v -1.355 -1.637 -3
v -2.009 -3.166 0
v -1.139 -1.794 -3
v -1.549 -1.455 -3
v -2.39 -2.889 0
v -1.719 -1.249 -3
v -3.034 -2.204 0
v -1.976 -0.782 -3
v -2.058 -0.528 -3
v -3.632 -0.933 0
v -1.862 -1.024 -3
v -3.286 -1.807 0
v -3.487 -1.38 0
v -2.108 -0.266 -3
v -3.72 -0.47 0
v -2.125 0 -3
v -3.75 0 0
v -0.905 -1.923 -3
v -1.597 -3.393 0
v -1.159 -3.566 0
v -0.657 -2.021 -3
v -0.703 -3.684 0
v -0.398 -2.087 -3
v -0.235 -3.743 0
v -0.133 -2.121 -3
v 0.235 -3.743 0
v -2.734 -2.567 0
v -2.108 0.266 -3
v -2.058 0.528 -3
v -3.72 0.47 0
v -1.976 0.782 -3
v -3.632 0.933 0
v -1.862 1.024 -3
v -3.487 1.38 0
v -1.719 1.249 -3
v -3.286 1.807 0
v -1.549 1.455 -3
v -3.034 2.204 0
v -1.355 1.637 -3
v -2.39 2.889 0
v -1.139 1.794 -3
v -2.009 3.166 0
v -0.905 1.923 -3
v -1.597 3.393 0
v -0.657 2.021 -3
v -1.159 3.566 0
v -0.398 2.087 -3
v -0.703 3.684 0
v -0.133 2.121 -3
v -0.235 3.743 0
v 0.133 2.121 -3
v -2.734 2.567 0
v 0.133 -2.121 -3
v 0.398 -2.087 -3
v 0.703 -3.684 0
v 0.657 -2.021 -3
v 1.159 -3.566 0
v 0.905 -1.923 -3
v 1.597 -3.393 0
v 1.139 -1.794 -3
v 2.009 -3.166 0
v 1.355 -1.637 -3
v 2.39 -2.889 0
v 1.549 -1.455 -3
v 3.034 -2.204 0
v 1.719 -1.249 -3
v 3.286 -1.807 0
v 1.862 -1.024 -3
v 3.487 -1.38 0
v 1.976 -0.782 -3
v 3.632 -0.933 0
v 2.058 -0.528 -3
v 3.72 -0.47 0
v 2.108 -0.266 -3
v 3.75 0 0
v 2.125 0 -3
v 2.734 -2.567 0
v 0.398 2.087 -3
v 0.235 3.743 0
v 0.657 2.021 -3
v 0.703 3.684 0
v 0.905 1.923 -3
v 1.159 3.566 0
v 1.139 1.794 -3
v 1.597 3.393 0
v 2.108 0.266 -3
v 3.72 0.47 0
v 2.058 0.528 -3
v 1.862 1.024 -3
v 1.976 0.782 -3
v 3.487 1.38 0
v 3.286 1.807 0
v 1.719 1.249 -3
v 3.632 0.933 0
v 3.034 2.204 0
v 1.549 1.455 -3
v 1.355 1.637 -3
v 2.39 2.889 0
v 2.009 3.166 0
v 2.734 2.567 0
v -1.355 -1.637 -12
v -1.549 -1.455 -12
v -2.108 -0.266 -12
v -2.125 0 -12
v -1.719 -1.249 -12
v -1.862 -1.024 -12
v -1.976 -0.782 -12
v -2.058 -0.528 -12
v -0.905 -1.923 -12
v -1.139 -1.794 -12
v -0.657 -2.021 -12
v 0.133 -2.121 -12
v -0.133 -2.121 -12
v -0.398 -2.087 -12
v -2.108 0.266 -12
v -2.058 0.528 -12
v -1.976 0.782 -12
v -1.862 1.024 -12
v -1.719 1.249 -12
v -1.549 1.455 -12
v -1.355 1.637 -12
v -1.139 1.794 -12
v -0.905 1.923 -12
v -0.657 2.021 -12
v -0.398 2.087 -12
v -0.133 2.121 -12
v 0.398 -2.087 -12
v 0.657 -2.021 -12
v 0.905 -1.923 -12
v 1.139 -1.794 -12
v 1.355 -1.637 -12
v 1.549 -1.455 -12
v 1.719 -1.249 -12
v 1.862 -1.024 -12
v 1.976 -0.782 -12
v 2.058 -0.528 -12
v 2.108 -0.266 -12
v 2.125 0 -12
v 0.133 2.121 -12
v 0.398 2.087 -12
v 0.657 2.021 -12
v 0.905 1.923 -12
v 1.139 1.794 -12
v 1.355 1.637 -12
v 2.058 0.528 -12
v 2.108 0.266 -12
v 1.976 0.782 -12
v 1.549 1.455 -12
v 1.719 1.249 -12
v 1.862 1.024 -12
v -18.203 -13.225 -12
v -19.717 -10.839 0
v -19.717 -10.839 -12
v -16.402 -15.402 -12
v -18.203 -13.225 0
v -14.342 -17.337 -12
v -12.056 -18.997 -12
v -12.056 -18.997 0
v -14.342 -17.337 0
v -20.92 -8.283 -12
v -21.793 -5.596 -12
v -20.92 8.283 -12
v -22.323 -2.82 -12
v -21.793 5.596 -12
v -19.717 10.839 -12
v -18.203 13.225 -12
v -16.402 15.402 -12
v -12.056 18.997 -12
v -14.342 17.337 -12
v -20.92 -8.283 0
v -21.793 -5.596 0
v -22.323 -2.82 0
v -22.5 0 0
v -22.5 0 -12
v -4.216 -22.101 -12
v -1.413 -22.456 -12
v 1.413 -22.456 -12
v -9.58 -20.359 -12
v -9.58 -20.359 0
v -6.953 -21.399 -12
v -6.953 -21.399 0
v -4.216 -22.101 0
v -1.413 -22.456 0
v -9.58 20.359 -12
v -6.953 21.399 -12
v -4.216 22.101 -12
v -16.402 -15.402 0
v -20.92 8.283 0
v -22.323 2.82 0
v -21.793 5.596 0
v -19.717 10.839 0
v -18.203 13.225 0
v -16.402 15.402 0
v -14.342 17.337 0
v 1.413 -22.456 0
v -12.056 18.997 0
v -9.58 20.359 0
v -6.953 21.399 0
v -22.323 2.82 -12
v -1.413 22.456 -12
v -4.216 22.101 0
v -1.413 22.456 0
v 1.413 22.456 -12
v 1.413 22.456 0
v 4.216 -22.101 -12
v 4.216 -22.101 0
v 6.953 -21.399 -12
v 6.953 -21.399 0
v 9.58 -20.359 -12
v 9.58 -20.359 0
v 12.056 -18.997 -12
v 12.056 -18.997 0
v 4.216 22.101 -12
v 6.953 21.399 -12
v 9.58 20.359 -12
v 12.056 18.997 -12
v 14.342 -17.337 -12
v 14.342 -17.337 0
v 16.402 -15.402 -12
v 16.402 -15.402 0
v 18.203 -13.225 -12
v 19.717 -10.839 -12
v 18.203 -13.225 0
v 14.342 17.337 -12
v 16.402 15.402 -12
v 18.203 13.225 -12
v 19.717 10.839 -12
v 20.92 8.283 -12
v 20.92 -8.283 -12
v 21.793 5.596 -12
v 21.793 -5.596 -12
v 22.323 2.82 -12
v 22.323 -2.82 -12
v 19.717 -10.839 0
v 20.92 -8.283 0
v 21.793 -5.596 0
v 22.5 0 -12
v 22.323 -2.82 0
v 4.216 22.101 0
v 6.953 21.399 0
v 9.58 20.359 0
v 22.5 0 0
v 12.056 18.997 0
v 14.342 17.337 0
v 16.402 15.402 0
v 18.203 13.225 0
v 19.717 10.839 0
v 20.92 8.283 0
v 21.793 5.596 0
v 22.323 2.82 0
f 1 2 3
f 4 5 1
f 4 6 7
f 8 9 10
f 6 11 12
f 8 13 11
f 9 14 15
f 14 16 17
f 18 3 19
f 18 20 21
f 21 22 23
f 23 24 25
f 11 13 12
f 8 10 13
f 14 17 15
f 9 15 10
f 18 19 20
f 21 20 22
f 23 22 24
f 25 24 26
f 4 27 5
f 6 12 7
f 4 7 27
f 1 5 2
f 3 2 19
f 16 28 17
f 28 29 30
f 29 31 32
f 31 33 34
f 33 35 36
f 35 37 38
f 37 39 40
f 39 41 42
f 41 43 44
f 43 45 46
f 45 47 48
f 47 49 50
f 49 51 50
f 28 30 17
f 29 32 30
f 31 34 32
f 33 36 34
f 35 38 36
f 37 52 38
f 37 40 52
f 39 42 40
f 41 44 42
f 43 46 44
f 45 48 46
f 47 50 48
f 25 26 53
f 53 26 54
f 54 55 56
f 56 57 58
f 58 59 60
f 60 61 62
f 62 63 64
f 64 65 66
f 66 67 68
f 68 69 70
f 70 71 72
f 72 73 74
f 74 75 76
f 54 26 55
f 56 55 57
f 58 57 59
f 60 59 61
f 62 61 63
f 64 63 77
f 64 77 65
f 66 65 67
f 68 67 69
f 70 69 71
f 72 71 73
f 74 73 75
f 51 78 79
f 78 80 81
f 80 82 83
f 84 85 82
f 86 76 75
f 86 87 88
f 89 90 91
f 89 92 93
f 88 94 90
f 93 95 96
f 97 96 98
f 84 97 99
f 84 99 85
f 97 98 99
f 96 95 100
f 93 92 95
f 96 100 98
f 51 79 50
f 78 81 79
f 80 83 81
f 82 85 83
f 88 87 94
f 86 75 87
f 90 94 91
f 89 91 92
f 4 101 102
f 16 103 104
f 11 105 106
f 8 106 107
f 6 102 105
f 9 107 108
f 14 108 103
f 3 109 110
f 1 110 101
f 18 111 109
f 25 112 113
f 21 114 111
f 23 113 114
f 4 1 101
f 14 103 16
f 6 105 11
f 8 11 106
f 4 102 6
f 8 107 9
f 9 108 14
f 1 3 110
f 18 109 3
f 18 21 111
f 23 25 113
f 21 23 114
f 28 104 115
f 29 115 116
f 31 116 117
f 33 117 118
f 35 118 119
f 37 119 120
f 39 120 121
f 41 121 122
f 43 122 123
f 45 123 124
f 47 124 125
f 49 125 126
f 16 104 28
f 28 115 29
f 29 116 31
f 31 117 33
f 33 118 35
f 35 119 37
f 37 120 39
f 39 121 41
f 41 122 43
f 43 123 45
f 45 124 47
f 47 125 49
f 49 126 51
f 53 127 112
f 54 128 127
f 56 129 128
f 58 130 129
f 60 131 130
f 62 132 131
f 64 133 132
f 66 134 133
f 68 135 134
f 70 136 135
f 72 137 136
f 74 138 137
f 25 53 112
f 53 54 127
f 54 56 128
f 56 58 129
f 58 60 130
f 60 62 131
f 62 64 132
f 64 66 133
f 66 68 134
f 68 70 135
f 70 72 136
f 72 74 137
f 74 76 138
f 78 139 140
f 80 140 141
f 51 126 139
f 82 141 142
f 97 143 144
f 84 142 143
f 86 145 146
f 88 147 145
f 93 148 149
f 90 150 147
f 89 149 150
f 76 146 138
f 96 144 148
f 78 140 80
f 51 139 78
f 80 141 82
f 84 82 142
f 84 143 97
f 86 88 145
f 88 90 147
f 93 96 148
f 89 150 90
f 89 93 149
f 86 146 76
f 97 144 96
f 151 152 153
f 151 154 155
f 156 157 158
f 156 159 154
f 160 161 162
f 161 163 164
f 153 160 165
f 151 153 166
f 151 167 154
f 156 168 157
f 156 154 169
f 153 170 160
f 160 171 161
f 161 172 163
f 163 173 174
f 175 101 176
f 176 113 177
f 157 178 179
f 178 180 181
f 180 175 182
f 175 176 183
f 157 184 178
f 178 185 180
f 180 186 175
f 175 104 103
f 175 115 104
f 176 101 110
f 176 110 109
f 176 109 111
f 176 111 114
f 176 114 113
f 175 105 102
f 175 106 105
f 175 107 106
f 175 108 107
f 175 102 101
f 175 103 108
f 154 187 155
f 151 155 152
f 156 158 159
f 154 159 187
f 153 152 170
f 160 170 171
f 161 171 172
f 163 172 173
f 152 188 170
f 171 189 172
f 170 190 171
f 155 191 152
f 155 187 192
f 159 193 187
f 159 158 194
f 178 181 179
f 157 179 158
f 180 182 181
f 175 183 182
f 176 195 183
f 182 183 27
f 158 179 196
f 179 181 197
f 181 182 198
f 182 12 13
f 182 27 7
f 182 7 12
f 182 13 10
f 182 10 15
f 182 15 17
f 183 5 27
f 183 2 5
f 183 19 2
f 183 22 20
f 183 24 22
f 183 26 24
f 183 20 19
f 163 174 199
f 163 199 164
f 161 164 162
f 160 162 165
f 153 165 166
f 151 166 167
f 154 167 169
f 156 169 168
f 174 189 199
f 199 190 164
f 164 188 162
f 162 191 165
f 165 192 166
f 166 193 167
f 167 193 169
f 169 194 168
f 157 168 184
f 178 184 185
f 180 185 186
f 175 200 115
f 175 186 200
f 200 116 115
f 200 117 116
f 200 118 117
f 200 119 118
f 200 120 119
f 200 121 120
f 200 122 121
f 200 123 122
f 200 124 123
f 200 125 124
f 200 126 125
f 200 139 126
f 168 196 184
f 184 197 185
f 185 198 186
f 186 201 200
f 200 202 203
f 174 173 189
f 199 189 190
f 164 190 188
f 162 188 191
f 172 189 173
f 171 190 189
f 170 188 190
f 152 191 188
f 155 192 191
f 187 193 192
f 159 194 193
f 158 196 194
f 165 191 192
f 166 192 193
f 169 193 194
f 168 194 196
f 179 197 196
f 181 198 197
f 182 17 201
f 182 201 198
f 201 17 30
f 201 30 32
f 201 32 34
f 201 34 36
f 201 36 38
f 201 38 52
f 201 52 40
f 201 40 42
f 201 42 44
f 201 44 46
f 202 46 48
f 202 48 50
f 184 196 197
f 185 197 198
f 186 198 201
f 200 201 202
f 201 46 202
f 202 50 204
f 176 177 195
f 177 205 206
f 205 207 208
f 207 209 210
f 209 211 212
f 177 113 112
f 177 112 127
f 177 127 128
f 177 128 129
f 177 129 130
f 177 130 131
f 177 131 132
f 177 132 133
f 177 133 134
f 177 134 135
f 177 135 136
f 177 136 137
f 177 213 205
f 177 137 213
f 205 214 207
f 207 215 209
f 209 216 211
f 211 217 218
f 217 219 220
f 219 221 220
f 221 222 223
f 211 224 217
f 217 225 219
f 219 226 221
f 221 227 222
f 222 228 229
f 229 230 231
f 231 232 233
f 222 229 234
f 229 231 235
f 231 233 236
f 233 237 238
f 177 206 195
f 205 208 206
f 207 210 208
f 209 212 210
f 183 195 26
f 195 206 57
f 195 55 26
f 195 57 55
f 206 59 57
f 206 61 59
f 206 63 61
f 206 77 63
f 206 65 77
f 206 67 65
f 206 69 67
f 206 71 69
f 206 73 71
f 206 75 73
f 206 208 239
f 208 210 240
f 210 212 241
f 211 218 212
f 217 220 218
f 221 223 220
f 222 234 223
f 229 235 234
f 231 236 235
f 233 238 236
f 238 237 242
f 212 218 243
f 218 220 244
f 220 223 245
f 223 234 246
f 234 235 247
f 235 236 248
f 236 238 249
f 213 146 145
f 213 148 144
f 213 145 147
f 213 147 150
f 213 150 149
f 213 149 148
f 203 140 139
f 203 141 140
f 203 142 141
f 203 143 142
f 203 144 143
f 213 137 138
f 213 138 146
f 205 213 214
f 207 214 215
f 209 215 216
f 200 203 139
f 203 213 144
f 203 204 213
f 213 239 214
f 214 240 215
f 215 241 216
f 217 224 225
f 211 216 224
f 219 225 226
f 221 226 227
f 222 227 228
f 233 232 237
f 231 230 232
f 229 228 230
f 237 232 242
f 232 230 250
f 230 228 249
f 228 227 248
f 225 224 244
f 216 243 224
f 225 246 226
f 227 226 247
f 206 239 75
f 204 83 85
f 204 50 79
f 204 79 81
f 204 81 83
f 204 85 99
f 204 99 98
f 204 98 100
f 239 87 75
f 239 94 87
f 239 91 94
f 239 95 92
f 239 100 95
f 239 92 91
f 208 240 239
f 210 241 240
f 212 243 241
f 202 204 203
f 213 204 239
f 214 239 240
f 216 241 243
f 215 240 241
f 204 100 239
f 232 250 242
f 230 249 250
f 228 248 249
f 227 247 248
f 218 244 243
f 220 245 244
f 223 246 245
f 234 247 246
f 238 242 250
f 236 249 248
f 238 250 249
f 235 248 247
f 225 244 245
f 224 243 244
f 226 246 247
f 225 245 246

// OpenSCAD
$fn = 50;

difference() {
	union() {
		translate(v = [0, 0, -12.0]) {
			cylinder(h = 12, r = 22.5);
		}
	}
	union() {
		translate(v = [0, 0, 0]) {
			rotate(a = [0, 0, 0]) {
				difference() {
					union() {
						translate(v = [0, 0, -15.0]) {
							cylinder(h = 15, r = 2.0);
						}
						translate(v = [0, 0, -3]) {
							cylinder(h = 3, r1 = 2.125, r2 = 3.75);
						}
						translate(v = [0, 0, -15.0]) {
							cylinder(h = 15, r = 2.125);
						}
						translate(v = [0, 0, -15.0]) {
							cylinder(h = 15, r = 2.0);
						}
					}
					union();
				}
			}
		}
	}
}
